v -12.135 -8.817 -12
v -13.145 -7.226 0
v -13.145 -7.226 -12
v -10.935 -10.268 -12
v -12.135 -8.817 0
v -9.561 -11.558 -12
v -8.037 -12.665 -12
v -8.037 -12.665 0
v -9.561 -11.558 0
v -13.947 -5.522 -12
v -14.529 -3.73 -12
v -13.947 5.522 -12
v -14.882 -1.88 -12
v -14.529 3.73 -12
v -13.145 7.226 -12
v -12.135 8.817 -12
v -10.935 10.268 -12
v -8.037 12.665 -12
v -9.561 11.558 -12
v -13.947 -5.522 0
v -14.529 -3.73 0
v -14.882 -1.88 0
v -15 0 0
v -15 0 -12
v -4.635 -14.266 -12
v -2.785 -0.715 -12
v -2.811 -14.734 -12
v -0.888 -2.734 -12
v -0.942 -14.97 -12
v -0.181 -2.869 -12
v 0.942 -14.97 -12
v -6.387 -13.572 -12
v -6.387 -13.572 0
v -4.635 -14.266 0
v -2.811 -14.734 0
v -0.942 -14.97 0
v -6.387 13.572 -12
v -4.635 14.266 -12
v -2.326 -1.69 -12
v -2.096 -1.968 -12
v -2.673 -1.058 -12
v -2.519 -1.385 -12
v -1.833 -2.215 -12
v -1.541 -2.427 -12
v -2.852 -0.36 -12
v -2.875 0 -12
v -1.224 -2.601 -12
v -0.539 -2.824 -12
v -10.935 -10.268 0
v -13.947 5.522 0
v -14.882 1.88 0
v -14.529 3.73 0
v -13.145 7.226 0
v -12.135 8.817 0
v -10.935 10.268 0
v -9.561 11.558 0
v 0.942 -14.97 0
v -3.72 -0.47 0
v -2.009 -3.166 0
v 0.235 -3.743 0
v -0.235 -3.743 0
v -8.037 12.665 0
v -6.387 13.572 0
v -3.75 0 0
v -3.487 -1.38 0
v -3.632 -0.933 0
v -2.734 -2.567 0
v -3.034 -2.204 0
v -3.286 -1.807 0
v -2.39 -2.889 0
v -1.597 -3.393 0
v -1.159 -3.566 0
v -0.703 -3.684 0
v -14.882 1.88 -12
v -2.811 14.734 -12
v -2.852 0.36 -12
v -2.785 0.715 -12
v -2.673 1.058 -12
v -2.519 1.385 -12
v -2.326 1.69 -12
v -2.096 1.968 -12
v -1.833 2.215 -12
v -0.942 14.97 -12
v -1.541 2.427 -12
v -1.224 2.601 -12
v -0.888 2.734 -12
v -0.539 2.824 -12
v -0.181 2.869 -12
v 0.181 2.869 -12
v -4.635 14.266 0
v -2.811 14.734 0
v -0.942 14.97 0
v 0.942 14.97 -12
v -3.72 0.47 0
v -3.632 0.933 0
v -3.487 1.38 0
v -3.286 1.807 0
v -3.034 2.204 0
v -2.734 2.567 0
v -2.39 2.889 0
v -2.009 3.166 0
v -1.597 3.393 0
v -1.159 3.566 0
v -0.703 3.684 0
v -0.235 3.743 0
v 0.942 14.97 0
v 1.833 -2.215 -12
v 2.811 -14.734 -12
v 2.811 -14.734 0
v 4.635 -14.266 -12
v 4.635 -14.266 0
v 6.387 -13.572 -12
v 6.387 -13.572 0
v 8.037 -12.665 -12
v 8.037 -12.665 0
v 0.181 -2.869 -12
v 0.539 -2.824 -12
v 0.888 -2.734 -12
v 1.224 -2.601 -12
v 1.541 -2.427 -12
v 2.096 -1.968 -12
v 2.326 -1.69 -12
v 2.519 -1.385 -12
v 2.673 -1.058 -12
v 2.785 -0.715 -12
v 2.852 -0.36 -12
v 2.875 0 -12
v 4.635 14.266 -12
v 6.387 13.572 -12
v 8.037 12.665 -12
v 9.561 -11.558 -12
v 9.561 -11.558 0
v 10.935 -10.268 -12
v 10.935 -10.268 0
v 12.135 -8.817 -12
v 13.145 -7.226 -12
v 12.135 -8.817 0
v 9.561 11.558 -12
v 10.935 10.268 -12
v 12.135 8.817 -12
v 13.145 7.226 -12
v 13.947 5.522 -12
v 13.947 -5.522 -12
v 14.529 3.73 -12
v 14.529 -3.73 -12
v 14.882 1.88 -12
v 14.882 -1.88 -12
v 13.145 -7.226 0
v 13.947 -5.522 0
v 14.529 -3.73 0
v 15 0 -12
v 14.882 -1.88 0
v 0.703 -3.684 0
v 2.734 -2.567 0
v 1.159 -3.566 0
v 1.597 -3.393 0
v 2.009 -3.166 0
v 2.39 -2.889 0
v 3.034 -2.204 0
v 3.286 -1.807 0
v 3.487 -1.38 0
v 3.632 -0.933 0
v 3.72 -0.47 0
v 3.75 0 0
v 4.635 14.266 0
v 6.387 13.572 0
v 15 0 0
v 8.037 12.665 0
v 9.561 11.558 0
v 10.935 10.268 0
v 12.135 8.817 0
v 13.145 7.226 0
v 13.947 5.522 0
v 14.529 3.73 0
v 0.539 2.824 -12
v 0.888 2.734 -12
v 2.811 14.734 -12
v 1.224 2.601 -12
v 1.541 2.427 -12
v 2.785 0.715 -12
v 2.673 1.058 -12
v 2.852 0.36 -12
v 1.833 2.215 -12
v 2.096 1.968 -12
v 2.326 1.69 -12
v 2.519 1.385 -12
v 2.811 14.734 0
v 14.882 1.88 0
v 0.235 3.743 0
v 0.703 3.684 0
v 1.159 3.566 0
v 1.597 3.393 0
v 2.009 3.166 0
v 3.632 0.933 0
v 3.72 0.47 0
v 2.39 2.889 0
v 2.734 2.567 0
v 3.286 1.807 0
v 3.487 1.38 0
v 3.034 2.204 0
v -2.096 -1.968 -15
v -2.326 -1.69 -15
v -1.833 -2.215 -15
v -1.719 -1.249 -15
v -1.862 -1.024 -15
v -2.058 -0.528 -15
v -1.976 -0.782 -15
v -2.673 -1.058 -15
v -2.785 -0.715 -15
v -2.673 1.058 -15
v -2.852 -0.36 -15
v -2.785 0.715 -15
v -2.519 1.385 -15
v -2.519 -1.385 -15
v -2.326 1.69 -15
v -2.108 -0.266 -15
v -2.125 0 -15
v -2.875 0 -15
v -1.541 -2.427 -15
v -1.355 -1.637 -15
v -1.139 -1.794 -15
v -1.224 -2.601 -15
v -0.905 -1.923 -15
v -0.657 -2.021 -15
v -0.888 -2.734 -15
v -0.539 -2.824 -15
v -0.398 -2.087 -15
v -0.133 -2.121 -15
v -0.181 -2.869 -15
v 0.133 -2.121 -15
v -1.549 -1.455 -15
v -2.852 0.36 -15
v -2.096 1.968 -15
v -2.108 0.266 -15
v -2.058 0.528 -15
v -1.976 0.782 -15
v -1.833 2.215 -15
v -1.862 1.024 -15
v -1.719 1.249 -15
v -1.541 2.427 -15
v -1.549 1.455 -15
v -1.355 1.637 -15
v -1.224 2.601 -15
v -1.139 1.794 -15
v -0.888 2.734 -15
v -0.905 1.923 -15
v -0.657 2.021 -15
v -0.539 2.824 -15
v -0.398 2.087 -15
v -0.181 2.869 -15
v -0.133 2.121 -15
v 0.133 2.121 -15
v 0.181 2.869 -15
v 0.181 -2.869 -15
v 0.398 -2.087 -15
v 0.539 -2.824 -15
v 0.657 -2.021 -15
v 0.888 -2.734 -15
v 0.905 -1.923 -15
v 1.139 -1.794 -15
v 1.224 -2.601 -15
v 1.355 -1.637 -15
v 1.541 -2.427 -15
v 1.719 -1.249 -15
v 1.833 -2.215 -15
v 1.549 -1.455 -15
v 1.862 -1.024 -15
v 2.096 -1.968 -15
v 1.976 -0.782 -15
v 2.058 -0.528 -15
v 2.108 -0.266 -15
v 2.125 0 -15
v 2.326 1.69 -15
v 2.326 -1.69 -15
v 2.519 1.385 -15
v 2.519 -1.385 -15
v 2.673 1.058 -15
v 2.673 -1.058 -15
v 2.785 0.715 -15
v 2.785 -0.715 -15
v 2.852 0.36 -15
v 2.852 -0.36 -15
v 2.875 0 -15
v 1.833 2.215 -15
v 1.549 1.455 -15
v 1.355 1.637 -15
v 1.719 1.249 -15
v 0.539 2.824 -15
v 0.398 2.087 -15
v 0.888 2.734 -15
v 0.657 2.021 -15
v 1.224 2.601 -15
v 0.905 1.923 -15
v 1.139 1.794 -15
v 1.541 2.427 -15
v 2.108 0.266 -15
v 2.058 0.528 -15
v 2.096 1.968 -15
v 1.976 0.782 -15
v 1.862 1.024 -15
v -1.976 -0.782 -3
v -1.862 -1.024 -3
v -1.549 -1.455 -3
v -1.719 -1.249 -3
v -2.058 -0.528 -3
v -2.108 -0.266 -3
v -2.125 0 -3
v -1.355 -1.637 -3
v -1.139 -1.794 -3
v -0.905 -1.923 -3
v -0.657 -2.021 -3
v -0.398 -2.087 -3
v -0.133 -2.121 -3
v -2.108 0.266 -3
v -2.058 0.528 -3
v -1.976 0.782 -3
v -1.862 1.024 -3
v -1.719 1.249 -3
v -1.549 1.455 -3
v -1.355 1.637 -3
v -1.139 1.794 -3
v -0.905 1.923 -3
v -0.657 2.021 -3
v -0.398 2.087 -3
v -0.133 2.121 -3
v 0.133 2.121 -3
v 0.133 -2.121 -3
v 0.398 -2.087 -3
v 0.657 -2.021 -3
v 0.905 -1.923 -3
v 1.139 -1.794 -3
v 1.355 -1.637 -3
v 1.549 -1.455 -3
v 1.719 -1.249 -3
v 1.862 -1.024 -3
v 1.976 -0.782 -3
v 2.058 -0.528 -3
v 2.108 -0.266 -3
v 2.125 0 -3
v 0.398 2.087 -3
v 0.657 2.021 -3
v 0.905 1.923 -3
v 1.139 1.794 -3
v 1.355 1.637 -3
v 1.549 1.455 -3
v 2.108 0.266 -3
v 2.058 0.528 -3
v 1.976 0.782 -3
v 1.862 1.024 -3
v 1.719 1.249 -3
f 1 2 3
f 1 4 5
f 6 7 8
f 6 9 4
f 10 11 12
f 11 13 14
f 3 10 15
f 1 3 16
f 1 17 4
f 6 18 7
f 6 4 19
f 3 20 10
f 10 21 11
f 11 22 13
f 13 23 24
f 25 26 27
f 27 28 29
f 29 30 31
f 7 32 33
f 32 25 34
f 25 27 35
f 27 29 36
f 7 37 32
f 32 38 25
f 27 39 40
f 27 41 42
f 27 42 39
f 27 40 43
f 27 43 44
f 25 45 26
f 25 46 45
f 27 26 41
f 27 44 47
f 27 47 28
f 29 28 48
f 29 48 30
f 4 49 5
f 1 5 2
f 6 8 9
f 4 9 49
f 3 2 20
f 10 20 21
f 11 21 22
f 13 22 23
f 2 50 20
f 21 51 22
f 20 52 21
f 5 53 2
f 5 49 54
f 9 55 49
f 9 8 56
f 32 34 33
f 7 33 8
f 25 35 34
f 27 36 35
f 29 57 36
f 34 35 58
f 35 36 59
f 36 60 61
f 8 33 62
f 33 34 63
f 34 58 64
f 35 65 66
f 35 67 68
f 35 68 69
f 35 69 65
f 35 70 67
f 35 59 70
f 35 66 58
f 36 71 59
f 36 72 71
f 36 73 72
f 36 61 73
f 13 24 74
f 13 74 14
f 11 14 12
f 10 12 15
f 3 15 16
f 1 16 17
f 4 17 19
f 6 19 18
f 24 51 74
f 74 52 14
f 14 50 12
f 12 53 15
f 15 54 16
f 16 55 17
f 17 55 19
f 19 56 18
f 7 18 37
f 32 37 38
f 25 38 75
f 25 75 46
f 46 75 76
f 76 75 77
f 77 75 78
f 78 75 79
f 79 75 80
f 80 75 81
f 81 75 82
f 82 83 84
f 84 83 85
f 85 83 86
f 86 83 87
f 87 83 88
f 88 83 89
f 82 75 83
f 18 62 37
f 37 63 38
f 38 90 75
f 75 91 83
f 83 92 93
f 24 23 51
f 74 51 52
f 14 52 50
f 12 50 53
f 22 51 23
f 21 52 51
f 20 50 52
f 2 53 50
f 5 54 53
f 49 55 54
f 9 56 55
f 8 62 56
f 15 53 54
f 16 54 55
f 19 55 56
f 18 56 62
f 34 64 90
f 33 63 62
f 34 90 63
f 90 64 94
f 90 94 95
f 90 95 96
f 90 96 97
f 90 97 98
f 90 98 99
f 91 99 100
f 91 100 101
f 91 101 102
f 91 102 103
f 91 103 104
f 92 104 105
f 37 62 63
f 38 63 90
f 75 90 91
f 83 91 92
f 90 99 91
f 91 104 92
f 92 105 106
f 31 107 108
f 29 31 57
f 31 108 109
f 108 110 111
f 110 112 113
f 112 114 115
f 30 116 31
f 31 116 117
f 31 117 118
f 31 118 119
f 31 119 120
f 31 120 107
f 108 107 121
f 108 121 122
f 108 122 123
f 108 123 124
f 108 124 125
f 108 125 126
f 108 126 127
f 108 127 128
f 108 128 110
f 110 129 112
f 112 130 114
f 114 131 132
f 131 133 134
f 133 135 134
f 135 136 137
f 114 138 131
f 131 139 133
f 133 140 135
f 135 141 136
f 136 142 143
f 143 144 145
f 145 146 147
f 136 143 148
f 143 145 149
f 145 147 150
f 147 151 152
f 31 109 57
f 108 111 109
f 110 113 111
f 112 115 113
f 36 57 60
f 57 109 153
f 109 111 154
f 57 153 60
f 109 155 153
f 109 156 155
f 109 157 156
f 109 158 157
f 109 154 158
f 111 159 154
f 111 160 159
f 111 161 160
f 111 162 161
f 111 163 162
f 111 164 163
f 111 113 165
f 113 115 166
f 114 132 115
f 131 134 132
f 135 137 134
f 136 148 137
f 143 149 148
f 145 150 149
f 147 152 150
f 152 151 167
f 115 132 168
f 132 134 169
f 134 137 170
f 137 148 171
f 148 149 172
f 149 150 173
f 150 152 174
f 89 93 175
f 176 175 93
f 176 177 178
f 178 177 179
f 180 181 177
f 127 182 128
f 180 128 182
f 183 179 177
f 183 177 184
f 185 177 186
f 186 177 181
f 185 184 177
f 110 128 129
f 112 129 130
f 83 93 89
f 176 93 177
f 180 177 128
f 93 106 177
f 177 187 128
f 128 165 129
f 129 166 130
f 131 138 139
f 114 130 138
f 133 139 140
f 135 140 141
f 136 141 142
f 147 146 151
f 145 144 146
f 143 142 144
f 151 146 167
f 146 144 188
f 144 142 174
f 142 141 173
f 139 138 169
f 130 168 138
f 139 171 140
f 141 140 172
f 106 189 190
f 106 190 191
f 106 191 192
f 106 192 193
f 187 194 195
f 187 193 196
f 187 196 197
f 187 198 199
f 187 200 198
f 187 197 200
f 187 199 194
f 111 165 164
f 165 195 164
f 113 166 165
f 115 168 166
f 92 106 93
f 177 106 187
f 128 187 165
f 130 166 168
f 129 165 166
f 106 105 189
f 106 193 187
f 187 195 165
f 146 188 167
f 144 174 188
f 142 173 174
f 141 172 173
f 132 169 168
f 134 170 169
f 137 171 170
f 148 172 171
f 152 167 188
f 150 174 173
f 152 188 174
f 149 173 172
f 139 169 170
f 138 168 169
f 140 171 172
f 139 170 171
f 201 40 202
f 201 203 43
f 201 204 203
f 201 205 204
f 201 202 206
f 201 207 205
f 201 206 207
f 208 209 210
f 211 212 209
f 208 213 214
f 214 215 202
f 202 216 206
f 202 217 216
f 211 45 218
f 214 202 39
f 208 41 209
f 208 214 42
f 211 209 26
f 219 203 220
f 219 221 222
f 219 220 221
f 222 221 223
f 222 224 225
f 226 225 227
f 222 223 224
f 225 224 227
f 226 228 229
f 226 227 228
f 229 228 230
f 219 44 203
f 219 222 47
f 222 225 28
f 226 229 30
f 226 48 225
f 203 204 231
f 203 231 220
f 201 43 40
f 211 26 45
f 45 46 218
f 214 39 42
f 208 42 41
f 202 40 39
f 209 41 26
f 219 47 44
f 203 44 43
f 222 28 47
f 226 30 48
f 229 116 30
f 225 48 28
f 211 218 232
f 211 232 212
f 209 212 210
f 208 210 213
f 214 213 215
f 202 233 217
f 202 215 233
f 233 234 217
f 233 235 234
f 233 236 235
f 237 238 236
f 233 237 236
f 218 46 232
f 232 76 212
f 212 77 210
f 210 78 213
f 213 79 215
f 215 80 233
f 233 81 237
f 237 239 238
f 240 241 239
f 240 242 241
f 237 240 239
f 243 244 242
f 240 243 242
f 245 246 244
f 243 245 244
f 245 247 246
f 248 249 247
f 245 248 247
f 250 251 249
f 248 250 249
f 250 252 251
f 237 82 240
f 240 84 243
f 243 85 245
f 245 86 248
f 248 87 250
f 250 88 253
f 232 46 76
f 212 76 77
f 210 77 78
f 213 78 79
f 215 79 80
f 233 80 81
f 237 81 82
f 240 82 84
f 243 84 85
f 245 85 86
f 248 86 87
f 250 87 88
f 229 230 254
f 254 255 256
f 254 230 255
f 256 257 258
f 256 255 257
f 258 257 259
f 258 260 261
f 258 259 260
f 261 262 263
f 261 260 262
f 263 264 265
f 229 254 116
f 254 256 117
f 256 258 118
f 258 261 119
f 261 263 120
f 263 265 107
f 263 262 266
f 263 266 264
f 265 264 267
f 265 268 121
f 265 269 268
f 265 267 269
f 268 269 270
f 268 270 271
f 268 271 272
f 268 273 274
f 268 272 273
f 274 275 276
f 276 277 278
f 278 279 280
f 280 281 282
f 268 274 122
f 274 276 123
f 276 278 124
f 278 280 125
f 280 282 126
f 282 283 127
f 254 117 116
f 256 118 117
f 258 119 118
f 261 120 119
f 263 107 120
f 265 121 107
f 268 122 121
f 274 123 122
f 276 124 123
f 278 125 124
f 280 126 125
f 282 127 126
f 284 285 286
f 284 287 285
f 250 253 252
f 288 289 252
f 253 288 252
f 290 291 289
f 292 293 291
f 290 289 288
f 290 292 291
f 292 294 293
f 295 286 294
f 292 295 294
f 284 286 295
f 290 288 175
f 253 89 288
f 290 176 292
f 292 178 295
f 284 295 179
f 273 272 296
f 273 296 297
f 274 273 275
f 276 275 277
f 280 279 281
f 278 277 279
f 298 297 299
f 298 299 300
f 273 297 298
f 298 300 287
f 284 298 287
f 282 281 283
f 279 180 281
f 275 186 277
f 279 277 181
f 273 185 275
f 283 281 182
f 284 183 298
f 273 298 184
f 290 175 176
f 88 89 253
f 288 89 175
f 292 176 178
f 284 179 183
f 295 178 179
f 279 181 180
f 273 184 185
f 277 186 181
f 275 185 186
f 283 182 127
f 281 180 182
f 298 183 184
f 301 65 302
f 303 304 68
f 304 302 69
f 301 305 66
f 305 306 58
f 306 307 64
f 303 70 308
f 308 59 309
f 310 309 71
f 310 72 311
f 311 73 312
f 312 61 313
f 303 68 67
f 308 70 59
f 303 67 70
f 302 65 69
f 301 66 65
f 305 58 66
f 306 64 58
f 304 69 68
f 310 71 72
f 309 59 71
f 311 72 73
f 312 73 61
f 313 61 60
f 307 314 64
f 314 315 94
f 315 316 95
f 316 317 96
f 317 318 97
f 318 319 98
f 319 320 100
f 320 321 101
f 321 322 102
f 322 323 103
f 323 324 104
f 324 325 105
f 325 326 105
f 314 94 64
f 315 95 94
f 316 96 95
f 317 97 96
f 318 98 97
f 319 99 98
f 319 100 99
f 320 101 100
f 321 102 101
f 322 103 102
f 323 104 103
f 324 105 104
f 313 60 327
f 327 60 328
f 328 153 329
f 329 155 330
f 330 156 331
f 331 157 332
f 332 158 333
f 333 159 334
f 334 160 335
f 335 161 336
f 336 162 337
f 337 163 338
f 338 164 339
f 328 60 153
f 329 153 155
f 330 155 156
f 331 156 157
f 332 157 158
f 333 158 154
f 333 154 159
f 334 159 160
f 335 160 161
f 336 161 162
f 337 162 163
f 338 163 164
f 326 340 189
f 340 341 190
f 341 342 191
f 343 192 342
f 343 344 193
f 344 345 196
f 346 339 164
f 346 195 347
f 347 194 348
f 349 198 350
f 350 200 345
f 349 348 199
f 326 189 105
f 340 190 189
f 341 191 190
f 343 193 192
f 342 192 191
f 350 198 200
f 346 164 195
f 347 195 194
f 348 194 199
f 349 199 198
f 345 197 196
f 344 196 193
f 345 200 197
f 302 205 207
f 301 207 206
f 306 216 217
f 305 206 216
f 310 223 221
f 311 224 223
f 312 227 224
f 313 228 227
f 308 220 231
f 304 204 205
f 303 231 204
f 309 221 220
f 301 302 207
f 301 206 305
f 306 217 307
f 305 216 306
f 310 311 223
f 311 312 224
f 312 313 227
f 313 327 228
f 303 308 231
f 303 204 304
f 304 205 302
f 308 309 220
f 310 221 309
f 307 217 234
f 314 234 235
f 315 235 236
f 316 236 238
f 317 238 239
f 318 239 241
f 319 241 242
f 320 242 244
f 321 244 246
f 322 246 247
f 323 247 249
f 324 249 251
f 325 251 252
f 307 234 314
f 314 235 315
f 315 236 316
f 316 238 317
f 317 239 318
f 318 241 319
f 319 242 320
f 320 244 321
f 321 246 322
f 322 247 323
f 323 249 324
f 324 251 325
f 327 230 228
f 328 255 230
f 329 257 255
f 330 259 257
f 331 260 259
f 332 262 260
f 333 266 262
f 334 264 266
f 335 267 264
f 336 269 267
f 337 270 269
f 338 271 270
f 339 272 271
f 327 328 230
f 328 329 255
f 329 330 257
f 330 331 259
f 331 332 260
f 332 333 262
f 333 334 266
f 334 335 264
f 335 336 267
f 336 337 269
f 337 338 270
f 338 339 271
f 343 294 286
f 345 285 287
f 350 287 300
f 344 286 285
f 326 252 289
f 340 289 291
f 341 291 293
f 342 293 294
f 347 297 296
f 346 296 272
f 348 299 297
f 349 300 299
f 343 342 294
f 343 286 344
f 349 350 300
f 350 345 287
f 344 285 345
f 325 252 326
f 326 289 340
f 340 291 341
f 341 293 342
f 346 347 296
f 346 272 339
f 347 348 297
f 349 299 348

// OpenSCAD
$fn = 50;

difference() {
	union() {
		translate(v = [0, 0, -12.0]) {
			cylinder(h = 12, r = 15.0);
		}
		#translate(v = [0, 0, -15.0]) {
			cylinder(h = 15, r = 2.875);
		}
	}
	union() {
		translate(v = [0, 0, 0]) {
			rotate(a = [0, 0, 0]) {
				difference() {
					union() {
						translate(v = [0, 0, -15.0]) {
							cylinder(h = 15, r = 2.0);
						}
						translate(v = [0, 0, -3]) {
							cylinder(h = 3, r1 = 2.125, r2 = 3.75);
						}
						translate(v = [0, 0, -15.0]) {
							cylinder(h = 15, r = 2.125);
						}
						translate(v = [0, 0, -15.0]) {
							cylinder(h = 15, r = 2.0);
						}
					}
					union();
				}
			}
		}
	}
}
